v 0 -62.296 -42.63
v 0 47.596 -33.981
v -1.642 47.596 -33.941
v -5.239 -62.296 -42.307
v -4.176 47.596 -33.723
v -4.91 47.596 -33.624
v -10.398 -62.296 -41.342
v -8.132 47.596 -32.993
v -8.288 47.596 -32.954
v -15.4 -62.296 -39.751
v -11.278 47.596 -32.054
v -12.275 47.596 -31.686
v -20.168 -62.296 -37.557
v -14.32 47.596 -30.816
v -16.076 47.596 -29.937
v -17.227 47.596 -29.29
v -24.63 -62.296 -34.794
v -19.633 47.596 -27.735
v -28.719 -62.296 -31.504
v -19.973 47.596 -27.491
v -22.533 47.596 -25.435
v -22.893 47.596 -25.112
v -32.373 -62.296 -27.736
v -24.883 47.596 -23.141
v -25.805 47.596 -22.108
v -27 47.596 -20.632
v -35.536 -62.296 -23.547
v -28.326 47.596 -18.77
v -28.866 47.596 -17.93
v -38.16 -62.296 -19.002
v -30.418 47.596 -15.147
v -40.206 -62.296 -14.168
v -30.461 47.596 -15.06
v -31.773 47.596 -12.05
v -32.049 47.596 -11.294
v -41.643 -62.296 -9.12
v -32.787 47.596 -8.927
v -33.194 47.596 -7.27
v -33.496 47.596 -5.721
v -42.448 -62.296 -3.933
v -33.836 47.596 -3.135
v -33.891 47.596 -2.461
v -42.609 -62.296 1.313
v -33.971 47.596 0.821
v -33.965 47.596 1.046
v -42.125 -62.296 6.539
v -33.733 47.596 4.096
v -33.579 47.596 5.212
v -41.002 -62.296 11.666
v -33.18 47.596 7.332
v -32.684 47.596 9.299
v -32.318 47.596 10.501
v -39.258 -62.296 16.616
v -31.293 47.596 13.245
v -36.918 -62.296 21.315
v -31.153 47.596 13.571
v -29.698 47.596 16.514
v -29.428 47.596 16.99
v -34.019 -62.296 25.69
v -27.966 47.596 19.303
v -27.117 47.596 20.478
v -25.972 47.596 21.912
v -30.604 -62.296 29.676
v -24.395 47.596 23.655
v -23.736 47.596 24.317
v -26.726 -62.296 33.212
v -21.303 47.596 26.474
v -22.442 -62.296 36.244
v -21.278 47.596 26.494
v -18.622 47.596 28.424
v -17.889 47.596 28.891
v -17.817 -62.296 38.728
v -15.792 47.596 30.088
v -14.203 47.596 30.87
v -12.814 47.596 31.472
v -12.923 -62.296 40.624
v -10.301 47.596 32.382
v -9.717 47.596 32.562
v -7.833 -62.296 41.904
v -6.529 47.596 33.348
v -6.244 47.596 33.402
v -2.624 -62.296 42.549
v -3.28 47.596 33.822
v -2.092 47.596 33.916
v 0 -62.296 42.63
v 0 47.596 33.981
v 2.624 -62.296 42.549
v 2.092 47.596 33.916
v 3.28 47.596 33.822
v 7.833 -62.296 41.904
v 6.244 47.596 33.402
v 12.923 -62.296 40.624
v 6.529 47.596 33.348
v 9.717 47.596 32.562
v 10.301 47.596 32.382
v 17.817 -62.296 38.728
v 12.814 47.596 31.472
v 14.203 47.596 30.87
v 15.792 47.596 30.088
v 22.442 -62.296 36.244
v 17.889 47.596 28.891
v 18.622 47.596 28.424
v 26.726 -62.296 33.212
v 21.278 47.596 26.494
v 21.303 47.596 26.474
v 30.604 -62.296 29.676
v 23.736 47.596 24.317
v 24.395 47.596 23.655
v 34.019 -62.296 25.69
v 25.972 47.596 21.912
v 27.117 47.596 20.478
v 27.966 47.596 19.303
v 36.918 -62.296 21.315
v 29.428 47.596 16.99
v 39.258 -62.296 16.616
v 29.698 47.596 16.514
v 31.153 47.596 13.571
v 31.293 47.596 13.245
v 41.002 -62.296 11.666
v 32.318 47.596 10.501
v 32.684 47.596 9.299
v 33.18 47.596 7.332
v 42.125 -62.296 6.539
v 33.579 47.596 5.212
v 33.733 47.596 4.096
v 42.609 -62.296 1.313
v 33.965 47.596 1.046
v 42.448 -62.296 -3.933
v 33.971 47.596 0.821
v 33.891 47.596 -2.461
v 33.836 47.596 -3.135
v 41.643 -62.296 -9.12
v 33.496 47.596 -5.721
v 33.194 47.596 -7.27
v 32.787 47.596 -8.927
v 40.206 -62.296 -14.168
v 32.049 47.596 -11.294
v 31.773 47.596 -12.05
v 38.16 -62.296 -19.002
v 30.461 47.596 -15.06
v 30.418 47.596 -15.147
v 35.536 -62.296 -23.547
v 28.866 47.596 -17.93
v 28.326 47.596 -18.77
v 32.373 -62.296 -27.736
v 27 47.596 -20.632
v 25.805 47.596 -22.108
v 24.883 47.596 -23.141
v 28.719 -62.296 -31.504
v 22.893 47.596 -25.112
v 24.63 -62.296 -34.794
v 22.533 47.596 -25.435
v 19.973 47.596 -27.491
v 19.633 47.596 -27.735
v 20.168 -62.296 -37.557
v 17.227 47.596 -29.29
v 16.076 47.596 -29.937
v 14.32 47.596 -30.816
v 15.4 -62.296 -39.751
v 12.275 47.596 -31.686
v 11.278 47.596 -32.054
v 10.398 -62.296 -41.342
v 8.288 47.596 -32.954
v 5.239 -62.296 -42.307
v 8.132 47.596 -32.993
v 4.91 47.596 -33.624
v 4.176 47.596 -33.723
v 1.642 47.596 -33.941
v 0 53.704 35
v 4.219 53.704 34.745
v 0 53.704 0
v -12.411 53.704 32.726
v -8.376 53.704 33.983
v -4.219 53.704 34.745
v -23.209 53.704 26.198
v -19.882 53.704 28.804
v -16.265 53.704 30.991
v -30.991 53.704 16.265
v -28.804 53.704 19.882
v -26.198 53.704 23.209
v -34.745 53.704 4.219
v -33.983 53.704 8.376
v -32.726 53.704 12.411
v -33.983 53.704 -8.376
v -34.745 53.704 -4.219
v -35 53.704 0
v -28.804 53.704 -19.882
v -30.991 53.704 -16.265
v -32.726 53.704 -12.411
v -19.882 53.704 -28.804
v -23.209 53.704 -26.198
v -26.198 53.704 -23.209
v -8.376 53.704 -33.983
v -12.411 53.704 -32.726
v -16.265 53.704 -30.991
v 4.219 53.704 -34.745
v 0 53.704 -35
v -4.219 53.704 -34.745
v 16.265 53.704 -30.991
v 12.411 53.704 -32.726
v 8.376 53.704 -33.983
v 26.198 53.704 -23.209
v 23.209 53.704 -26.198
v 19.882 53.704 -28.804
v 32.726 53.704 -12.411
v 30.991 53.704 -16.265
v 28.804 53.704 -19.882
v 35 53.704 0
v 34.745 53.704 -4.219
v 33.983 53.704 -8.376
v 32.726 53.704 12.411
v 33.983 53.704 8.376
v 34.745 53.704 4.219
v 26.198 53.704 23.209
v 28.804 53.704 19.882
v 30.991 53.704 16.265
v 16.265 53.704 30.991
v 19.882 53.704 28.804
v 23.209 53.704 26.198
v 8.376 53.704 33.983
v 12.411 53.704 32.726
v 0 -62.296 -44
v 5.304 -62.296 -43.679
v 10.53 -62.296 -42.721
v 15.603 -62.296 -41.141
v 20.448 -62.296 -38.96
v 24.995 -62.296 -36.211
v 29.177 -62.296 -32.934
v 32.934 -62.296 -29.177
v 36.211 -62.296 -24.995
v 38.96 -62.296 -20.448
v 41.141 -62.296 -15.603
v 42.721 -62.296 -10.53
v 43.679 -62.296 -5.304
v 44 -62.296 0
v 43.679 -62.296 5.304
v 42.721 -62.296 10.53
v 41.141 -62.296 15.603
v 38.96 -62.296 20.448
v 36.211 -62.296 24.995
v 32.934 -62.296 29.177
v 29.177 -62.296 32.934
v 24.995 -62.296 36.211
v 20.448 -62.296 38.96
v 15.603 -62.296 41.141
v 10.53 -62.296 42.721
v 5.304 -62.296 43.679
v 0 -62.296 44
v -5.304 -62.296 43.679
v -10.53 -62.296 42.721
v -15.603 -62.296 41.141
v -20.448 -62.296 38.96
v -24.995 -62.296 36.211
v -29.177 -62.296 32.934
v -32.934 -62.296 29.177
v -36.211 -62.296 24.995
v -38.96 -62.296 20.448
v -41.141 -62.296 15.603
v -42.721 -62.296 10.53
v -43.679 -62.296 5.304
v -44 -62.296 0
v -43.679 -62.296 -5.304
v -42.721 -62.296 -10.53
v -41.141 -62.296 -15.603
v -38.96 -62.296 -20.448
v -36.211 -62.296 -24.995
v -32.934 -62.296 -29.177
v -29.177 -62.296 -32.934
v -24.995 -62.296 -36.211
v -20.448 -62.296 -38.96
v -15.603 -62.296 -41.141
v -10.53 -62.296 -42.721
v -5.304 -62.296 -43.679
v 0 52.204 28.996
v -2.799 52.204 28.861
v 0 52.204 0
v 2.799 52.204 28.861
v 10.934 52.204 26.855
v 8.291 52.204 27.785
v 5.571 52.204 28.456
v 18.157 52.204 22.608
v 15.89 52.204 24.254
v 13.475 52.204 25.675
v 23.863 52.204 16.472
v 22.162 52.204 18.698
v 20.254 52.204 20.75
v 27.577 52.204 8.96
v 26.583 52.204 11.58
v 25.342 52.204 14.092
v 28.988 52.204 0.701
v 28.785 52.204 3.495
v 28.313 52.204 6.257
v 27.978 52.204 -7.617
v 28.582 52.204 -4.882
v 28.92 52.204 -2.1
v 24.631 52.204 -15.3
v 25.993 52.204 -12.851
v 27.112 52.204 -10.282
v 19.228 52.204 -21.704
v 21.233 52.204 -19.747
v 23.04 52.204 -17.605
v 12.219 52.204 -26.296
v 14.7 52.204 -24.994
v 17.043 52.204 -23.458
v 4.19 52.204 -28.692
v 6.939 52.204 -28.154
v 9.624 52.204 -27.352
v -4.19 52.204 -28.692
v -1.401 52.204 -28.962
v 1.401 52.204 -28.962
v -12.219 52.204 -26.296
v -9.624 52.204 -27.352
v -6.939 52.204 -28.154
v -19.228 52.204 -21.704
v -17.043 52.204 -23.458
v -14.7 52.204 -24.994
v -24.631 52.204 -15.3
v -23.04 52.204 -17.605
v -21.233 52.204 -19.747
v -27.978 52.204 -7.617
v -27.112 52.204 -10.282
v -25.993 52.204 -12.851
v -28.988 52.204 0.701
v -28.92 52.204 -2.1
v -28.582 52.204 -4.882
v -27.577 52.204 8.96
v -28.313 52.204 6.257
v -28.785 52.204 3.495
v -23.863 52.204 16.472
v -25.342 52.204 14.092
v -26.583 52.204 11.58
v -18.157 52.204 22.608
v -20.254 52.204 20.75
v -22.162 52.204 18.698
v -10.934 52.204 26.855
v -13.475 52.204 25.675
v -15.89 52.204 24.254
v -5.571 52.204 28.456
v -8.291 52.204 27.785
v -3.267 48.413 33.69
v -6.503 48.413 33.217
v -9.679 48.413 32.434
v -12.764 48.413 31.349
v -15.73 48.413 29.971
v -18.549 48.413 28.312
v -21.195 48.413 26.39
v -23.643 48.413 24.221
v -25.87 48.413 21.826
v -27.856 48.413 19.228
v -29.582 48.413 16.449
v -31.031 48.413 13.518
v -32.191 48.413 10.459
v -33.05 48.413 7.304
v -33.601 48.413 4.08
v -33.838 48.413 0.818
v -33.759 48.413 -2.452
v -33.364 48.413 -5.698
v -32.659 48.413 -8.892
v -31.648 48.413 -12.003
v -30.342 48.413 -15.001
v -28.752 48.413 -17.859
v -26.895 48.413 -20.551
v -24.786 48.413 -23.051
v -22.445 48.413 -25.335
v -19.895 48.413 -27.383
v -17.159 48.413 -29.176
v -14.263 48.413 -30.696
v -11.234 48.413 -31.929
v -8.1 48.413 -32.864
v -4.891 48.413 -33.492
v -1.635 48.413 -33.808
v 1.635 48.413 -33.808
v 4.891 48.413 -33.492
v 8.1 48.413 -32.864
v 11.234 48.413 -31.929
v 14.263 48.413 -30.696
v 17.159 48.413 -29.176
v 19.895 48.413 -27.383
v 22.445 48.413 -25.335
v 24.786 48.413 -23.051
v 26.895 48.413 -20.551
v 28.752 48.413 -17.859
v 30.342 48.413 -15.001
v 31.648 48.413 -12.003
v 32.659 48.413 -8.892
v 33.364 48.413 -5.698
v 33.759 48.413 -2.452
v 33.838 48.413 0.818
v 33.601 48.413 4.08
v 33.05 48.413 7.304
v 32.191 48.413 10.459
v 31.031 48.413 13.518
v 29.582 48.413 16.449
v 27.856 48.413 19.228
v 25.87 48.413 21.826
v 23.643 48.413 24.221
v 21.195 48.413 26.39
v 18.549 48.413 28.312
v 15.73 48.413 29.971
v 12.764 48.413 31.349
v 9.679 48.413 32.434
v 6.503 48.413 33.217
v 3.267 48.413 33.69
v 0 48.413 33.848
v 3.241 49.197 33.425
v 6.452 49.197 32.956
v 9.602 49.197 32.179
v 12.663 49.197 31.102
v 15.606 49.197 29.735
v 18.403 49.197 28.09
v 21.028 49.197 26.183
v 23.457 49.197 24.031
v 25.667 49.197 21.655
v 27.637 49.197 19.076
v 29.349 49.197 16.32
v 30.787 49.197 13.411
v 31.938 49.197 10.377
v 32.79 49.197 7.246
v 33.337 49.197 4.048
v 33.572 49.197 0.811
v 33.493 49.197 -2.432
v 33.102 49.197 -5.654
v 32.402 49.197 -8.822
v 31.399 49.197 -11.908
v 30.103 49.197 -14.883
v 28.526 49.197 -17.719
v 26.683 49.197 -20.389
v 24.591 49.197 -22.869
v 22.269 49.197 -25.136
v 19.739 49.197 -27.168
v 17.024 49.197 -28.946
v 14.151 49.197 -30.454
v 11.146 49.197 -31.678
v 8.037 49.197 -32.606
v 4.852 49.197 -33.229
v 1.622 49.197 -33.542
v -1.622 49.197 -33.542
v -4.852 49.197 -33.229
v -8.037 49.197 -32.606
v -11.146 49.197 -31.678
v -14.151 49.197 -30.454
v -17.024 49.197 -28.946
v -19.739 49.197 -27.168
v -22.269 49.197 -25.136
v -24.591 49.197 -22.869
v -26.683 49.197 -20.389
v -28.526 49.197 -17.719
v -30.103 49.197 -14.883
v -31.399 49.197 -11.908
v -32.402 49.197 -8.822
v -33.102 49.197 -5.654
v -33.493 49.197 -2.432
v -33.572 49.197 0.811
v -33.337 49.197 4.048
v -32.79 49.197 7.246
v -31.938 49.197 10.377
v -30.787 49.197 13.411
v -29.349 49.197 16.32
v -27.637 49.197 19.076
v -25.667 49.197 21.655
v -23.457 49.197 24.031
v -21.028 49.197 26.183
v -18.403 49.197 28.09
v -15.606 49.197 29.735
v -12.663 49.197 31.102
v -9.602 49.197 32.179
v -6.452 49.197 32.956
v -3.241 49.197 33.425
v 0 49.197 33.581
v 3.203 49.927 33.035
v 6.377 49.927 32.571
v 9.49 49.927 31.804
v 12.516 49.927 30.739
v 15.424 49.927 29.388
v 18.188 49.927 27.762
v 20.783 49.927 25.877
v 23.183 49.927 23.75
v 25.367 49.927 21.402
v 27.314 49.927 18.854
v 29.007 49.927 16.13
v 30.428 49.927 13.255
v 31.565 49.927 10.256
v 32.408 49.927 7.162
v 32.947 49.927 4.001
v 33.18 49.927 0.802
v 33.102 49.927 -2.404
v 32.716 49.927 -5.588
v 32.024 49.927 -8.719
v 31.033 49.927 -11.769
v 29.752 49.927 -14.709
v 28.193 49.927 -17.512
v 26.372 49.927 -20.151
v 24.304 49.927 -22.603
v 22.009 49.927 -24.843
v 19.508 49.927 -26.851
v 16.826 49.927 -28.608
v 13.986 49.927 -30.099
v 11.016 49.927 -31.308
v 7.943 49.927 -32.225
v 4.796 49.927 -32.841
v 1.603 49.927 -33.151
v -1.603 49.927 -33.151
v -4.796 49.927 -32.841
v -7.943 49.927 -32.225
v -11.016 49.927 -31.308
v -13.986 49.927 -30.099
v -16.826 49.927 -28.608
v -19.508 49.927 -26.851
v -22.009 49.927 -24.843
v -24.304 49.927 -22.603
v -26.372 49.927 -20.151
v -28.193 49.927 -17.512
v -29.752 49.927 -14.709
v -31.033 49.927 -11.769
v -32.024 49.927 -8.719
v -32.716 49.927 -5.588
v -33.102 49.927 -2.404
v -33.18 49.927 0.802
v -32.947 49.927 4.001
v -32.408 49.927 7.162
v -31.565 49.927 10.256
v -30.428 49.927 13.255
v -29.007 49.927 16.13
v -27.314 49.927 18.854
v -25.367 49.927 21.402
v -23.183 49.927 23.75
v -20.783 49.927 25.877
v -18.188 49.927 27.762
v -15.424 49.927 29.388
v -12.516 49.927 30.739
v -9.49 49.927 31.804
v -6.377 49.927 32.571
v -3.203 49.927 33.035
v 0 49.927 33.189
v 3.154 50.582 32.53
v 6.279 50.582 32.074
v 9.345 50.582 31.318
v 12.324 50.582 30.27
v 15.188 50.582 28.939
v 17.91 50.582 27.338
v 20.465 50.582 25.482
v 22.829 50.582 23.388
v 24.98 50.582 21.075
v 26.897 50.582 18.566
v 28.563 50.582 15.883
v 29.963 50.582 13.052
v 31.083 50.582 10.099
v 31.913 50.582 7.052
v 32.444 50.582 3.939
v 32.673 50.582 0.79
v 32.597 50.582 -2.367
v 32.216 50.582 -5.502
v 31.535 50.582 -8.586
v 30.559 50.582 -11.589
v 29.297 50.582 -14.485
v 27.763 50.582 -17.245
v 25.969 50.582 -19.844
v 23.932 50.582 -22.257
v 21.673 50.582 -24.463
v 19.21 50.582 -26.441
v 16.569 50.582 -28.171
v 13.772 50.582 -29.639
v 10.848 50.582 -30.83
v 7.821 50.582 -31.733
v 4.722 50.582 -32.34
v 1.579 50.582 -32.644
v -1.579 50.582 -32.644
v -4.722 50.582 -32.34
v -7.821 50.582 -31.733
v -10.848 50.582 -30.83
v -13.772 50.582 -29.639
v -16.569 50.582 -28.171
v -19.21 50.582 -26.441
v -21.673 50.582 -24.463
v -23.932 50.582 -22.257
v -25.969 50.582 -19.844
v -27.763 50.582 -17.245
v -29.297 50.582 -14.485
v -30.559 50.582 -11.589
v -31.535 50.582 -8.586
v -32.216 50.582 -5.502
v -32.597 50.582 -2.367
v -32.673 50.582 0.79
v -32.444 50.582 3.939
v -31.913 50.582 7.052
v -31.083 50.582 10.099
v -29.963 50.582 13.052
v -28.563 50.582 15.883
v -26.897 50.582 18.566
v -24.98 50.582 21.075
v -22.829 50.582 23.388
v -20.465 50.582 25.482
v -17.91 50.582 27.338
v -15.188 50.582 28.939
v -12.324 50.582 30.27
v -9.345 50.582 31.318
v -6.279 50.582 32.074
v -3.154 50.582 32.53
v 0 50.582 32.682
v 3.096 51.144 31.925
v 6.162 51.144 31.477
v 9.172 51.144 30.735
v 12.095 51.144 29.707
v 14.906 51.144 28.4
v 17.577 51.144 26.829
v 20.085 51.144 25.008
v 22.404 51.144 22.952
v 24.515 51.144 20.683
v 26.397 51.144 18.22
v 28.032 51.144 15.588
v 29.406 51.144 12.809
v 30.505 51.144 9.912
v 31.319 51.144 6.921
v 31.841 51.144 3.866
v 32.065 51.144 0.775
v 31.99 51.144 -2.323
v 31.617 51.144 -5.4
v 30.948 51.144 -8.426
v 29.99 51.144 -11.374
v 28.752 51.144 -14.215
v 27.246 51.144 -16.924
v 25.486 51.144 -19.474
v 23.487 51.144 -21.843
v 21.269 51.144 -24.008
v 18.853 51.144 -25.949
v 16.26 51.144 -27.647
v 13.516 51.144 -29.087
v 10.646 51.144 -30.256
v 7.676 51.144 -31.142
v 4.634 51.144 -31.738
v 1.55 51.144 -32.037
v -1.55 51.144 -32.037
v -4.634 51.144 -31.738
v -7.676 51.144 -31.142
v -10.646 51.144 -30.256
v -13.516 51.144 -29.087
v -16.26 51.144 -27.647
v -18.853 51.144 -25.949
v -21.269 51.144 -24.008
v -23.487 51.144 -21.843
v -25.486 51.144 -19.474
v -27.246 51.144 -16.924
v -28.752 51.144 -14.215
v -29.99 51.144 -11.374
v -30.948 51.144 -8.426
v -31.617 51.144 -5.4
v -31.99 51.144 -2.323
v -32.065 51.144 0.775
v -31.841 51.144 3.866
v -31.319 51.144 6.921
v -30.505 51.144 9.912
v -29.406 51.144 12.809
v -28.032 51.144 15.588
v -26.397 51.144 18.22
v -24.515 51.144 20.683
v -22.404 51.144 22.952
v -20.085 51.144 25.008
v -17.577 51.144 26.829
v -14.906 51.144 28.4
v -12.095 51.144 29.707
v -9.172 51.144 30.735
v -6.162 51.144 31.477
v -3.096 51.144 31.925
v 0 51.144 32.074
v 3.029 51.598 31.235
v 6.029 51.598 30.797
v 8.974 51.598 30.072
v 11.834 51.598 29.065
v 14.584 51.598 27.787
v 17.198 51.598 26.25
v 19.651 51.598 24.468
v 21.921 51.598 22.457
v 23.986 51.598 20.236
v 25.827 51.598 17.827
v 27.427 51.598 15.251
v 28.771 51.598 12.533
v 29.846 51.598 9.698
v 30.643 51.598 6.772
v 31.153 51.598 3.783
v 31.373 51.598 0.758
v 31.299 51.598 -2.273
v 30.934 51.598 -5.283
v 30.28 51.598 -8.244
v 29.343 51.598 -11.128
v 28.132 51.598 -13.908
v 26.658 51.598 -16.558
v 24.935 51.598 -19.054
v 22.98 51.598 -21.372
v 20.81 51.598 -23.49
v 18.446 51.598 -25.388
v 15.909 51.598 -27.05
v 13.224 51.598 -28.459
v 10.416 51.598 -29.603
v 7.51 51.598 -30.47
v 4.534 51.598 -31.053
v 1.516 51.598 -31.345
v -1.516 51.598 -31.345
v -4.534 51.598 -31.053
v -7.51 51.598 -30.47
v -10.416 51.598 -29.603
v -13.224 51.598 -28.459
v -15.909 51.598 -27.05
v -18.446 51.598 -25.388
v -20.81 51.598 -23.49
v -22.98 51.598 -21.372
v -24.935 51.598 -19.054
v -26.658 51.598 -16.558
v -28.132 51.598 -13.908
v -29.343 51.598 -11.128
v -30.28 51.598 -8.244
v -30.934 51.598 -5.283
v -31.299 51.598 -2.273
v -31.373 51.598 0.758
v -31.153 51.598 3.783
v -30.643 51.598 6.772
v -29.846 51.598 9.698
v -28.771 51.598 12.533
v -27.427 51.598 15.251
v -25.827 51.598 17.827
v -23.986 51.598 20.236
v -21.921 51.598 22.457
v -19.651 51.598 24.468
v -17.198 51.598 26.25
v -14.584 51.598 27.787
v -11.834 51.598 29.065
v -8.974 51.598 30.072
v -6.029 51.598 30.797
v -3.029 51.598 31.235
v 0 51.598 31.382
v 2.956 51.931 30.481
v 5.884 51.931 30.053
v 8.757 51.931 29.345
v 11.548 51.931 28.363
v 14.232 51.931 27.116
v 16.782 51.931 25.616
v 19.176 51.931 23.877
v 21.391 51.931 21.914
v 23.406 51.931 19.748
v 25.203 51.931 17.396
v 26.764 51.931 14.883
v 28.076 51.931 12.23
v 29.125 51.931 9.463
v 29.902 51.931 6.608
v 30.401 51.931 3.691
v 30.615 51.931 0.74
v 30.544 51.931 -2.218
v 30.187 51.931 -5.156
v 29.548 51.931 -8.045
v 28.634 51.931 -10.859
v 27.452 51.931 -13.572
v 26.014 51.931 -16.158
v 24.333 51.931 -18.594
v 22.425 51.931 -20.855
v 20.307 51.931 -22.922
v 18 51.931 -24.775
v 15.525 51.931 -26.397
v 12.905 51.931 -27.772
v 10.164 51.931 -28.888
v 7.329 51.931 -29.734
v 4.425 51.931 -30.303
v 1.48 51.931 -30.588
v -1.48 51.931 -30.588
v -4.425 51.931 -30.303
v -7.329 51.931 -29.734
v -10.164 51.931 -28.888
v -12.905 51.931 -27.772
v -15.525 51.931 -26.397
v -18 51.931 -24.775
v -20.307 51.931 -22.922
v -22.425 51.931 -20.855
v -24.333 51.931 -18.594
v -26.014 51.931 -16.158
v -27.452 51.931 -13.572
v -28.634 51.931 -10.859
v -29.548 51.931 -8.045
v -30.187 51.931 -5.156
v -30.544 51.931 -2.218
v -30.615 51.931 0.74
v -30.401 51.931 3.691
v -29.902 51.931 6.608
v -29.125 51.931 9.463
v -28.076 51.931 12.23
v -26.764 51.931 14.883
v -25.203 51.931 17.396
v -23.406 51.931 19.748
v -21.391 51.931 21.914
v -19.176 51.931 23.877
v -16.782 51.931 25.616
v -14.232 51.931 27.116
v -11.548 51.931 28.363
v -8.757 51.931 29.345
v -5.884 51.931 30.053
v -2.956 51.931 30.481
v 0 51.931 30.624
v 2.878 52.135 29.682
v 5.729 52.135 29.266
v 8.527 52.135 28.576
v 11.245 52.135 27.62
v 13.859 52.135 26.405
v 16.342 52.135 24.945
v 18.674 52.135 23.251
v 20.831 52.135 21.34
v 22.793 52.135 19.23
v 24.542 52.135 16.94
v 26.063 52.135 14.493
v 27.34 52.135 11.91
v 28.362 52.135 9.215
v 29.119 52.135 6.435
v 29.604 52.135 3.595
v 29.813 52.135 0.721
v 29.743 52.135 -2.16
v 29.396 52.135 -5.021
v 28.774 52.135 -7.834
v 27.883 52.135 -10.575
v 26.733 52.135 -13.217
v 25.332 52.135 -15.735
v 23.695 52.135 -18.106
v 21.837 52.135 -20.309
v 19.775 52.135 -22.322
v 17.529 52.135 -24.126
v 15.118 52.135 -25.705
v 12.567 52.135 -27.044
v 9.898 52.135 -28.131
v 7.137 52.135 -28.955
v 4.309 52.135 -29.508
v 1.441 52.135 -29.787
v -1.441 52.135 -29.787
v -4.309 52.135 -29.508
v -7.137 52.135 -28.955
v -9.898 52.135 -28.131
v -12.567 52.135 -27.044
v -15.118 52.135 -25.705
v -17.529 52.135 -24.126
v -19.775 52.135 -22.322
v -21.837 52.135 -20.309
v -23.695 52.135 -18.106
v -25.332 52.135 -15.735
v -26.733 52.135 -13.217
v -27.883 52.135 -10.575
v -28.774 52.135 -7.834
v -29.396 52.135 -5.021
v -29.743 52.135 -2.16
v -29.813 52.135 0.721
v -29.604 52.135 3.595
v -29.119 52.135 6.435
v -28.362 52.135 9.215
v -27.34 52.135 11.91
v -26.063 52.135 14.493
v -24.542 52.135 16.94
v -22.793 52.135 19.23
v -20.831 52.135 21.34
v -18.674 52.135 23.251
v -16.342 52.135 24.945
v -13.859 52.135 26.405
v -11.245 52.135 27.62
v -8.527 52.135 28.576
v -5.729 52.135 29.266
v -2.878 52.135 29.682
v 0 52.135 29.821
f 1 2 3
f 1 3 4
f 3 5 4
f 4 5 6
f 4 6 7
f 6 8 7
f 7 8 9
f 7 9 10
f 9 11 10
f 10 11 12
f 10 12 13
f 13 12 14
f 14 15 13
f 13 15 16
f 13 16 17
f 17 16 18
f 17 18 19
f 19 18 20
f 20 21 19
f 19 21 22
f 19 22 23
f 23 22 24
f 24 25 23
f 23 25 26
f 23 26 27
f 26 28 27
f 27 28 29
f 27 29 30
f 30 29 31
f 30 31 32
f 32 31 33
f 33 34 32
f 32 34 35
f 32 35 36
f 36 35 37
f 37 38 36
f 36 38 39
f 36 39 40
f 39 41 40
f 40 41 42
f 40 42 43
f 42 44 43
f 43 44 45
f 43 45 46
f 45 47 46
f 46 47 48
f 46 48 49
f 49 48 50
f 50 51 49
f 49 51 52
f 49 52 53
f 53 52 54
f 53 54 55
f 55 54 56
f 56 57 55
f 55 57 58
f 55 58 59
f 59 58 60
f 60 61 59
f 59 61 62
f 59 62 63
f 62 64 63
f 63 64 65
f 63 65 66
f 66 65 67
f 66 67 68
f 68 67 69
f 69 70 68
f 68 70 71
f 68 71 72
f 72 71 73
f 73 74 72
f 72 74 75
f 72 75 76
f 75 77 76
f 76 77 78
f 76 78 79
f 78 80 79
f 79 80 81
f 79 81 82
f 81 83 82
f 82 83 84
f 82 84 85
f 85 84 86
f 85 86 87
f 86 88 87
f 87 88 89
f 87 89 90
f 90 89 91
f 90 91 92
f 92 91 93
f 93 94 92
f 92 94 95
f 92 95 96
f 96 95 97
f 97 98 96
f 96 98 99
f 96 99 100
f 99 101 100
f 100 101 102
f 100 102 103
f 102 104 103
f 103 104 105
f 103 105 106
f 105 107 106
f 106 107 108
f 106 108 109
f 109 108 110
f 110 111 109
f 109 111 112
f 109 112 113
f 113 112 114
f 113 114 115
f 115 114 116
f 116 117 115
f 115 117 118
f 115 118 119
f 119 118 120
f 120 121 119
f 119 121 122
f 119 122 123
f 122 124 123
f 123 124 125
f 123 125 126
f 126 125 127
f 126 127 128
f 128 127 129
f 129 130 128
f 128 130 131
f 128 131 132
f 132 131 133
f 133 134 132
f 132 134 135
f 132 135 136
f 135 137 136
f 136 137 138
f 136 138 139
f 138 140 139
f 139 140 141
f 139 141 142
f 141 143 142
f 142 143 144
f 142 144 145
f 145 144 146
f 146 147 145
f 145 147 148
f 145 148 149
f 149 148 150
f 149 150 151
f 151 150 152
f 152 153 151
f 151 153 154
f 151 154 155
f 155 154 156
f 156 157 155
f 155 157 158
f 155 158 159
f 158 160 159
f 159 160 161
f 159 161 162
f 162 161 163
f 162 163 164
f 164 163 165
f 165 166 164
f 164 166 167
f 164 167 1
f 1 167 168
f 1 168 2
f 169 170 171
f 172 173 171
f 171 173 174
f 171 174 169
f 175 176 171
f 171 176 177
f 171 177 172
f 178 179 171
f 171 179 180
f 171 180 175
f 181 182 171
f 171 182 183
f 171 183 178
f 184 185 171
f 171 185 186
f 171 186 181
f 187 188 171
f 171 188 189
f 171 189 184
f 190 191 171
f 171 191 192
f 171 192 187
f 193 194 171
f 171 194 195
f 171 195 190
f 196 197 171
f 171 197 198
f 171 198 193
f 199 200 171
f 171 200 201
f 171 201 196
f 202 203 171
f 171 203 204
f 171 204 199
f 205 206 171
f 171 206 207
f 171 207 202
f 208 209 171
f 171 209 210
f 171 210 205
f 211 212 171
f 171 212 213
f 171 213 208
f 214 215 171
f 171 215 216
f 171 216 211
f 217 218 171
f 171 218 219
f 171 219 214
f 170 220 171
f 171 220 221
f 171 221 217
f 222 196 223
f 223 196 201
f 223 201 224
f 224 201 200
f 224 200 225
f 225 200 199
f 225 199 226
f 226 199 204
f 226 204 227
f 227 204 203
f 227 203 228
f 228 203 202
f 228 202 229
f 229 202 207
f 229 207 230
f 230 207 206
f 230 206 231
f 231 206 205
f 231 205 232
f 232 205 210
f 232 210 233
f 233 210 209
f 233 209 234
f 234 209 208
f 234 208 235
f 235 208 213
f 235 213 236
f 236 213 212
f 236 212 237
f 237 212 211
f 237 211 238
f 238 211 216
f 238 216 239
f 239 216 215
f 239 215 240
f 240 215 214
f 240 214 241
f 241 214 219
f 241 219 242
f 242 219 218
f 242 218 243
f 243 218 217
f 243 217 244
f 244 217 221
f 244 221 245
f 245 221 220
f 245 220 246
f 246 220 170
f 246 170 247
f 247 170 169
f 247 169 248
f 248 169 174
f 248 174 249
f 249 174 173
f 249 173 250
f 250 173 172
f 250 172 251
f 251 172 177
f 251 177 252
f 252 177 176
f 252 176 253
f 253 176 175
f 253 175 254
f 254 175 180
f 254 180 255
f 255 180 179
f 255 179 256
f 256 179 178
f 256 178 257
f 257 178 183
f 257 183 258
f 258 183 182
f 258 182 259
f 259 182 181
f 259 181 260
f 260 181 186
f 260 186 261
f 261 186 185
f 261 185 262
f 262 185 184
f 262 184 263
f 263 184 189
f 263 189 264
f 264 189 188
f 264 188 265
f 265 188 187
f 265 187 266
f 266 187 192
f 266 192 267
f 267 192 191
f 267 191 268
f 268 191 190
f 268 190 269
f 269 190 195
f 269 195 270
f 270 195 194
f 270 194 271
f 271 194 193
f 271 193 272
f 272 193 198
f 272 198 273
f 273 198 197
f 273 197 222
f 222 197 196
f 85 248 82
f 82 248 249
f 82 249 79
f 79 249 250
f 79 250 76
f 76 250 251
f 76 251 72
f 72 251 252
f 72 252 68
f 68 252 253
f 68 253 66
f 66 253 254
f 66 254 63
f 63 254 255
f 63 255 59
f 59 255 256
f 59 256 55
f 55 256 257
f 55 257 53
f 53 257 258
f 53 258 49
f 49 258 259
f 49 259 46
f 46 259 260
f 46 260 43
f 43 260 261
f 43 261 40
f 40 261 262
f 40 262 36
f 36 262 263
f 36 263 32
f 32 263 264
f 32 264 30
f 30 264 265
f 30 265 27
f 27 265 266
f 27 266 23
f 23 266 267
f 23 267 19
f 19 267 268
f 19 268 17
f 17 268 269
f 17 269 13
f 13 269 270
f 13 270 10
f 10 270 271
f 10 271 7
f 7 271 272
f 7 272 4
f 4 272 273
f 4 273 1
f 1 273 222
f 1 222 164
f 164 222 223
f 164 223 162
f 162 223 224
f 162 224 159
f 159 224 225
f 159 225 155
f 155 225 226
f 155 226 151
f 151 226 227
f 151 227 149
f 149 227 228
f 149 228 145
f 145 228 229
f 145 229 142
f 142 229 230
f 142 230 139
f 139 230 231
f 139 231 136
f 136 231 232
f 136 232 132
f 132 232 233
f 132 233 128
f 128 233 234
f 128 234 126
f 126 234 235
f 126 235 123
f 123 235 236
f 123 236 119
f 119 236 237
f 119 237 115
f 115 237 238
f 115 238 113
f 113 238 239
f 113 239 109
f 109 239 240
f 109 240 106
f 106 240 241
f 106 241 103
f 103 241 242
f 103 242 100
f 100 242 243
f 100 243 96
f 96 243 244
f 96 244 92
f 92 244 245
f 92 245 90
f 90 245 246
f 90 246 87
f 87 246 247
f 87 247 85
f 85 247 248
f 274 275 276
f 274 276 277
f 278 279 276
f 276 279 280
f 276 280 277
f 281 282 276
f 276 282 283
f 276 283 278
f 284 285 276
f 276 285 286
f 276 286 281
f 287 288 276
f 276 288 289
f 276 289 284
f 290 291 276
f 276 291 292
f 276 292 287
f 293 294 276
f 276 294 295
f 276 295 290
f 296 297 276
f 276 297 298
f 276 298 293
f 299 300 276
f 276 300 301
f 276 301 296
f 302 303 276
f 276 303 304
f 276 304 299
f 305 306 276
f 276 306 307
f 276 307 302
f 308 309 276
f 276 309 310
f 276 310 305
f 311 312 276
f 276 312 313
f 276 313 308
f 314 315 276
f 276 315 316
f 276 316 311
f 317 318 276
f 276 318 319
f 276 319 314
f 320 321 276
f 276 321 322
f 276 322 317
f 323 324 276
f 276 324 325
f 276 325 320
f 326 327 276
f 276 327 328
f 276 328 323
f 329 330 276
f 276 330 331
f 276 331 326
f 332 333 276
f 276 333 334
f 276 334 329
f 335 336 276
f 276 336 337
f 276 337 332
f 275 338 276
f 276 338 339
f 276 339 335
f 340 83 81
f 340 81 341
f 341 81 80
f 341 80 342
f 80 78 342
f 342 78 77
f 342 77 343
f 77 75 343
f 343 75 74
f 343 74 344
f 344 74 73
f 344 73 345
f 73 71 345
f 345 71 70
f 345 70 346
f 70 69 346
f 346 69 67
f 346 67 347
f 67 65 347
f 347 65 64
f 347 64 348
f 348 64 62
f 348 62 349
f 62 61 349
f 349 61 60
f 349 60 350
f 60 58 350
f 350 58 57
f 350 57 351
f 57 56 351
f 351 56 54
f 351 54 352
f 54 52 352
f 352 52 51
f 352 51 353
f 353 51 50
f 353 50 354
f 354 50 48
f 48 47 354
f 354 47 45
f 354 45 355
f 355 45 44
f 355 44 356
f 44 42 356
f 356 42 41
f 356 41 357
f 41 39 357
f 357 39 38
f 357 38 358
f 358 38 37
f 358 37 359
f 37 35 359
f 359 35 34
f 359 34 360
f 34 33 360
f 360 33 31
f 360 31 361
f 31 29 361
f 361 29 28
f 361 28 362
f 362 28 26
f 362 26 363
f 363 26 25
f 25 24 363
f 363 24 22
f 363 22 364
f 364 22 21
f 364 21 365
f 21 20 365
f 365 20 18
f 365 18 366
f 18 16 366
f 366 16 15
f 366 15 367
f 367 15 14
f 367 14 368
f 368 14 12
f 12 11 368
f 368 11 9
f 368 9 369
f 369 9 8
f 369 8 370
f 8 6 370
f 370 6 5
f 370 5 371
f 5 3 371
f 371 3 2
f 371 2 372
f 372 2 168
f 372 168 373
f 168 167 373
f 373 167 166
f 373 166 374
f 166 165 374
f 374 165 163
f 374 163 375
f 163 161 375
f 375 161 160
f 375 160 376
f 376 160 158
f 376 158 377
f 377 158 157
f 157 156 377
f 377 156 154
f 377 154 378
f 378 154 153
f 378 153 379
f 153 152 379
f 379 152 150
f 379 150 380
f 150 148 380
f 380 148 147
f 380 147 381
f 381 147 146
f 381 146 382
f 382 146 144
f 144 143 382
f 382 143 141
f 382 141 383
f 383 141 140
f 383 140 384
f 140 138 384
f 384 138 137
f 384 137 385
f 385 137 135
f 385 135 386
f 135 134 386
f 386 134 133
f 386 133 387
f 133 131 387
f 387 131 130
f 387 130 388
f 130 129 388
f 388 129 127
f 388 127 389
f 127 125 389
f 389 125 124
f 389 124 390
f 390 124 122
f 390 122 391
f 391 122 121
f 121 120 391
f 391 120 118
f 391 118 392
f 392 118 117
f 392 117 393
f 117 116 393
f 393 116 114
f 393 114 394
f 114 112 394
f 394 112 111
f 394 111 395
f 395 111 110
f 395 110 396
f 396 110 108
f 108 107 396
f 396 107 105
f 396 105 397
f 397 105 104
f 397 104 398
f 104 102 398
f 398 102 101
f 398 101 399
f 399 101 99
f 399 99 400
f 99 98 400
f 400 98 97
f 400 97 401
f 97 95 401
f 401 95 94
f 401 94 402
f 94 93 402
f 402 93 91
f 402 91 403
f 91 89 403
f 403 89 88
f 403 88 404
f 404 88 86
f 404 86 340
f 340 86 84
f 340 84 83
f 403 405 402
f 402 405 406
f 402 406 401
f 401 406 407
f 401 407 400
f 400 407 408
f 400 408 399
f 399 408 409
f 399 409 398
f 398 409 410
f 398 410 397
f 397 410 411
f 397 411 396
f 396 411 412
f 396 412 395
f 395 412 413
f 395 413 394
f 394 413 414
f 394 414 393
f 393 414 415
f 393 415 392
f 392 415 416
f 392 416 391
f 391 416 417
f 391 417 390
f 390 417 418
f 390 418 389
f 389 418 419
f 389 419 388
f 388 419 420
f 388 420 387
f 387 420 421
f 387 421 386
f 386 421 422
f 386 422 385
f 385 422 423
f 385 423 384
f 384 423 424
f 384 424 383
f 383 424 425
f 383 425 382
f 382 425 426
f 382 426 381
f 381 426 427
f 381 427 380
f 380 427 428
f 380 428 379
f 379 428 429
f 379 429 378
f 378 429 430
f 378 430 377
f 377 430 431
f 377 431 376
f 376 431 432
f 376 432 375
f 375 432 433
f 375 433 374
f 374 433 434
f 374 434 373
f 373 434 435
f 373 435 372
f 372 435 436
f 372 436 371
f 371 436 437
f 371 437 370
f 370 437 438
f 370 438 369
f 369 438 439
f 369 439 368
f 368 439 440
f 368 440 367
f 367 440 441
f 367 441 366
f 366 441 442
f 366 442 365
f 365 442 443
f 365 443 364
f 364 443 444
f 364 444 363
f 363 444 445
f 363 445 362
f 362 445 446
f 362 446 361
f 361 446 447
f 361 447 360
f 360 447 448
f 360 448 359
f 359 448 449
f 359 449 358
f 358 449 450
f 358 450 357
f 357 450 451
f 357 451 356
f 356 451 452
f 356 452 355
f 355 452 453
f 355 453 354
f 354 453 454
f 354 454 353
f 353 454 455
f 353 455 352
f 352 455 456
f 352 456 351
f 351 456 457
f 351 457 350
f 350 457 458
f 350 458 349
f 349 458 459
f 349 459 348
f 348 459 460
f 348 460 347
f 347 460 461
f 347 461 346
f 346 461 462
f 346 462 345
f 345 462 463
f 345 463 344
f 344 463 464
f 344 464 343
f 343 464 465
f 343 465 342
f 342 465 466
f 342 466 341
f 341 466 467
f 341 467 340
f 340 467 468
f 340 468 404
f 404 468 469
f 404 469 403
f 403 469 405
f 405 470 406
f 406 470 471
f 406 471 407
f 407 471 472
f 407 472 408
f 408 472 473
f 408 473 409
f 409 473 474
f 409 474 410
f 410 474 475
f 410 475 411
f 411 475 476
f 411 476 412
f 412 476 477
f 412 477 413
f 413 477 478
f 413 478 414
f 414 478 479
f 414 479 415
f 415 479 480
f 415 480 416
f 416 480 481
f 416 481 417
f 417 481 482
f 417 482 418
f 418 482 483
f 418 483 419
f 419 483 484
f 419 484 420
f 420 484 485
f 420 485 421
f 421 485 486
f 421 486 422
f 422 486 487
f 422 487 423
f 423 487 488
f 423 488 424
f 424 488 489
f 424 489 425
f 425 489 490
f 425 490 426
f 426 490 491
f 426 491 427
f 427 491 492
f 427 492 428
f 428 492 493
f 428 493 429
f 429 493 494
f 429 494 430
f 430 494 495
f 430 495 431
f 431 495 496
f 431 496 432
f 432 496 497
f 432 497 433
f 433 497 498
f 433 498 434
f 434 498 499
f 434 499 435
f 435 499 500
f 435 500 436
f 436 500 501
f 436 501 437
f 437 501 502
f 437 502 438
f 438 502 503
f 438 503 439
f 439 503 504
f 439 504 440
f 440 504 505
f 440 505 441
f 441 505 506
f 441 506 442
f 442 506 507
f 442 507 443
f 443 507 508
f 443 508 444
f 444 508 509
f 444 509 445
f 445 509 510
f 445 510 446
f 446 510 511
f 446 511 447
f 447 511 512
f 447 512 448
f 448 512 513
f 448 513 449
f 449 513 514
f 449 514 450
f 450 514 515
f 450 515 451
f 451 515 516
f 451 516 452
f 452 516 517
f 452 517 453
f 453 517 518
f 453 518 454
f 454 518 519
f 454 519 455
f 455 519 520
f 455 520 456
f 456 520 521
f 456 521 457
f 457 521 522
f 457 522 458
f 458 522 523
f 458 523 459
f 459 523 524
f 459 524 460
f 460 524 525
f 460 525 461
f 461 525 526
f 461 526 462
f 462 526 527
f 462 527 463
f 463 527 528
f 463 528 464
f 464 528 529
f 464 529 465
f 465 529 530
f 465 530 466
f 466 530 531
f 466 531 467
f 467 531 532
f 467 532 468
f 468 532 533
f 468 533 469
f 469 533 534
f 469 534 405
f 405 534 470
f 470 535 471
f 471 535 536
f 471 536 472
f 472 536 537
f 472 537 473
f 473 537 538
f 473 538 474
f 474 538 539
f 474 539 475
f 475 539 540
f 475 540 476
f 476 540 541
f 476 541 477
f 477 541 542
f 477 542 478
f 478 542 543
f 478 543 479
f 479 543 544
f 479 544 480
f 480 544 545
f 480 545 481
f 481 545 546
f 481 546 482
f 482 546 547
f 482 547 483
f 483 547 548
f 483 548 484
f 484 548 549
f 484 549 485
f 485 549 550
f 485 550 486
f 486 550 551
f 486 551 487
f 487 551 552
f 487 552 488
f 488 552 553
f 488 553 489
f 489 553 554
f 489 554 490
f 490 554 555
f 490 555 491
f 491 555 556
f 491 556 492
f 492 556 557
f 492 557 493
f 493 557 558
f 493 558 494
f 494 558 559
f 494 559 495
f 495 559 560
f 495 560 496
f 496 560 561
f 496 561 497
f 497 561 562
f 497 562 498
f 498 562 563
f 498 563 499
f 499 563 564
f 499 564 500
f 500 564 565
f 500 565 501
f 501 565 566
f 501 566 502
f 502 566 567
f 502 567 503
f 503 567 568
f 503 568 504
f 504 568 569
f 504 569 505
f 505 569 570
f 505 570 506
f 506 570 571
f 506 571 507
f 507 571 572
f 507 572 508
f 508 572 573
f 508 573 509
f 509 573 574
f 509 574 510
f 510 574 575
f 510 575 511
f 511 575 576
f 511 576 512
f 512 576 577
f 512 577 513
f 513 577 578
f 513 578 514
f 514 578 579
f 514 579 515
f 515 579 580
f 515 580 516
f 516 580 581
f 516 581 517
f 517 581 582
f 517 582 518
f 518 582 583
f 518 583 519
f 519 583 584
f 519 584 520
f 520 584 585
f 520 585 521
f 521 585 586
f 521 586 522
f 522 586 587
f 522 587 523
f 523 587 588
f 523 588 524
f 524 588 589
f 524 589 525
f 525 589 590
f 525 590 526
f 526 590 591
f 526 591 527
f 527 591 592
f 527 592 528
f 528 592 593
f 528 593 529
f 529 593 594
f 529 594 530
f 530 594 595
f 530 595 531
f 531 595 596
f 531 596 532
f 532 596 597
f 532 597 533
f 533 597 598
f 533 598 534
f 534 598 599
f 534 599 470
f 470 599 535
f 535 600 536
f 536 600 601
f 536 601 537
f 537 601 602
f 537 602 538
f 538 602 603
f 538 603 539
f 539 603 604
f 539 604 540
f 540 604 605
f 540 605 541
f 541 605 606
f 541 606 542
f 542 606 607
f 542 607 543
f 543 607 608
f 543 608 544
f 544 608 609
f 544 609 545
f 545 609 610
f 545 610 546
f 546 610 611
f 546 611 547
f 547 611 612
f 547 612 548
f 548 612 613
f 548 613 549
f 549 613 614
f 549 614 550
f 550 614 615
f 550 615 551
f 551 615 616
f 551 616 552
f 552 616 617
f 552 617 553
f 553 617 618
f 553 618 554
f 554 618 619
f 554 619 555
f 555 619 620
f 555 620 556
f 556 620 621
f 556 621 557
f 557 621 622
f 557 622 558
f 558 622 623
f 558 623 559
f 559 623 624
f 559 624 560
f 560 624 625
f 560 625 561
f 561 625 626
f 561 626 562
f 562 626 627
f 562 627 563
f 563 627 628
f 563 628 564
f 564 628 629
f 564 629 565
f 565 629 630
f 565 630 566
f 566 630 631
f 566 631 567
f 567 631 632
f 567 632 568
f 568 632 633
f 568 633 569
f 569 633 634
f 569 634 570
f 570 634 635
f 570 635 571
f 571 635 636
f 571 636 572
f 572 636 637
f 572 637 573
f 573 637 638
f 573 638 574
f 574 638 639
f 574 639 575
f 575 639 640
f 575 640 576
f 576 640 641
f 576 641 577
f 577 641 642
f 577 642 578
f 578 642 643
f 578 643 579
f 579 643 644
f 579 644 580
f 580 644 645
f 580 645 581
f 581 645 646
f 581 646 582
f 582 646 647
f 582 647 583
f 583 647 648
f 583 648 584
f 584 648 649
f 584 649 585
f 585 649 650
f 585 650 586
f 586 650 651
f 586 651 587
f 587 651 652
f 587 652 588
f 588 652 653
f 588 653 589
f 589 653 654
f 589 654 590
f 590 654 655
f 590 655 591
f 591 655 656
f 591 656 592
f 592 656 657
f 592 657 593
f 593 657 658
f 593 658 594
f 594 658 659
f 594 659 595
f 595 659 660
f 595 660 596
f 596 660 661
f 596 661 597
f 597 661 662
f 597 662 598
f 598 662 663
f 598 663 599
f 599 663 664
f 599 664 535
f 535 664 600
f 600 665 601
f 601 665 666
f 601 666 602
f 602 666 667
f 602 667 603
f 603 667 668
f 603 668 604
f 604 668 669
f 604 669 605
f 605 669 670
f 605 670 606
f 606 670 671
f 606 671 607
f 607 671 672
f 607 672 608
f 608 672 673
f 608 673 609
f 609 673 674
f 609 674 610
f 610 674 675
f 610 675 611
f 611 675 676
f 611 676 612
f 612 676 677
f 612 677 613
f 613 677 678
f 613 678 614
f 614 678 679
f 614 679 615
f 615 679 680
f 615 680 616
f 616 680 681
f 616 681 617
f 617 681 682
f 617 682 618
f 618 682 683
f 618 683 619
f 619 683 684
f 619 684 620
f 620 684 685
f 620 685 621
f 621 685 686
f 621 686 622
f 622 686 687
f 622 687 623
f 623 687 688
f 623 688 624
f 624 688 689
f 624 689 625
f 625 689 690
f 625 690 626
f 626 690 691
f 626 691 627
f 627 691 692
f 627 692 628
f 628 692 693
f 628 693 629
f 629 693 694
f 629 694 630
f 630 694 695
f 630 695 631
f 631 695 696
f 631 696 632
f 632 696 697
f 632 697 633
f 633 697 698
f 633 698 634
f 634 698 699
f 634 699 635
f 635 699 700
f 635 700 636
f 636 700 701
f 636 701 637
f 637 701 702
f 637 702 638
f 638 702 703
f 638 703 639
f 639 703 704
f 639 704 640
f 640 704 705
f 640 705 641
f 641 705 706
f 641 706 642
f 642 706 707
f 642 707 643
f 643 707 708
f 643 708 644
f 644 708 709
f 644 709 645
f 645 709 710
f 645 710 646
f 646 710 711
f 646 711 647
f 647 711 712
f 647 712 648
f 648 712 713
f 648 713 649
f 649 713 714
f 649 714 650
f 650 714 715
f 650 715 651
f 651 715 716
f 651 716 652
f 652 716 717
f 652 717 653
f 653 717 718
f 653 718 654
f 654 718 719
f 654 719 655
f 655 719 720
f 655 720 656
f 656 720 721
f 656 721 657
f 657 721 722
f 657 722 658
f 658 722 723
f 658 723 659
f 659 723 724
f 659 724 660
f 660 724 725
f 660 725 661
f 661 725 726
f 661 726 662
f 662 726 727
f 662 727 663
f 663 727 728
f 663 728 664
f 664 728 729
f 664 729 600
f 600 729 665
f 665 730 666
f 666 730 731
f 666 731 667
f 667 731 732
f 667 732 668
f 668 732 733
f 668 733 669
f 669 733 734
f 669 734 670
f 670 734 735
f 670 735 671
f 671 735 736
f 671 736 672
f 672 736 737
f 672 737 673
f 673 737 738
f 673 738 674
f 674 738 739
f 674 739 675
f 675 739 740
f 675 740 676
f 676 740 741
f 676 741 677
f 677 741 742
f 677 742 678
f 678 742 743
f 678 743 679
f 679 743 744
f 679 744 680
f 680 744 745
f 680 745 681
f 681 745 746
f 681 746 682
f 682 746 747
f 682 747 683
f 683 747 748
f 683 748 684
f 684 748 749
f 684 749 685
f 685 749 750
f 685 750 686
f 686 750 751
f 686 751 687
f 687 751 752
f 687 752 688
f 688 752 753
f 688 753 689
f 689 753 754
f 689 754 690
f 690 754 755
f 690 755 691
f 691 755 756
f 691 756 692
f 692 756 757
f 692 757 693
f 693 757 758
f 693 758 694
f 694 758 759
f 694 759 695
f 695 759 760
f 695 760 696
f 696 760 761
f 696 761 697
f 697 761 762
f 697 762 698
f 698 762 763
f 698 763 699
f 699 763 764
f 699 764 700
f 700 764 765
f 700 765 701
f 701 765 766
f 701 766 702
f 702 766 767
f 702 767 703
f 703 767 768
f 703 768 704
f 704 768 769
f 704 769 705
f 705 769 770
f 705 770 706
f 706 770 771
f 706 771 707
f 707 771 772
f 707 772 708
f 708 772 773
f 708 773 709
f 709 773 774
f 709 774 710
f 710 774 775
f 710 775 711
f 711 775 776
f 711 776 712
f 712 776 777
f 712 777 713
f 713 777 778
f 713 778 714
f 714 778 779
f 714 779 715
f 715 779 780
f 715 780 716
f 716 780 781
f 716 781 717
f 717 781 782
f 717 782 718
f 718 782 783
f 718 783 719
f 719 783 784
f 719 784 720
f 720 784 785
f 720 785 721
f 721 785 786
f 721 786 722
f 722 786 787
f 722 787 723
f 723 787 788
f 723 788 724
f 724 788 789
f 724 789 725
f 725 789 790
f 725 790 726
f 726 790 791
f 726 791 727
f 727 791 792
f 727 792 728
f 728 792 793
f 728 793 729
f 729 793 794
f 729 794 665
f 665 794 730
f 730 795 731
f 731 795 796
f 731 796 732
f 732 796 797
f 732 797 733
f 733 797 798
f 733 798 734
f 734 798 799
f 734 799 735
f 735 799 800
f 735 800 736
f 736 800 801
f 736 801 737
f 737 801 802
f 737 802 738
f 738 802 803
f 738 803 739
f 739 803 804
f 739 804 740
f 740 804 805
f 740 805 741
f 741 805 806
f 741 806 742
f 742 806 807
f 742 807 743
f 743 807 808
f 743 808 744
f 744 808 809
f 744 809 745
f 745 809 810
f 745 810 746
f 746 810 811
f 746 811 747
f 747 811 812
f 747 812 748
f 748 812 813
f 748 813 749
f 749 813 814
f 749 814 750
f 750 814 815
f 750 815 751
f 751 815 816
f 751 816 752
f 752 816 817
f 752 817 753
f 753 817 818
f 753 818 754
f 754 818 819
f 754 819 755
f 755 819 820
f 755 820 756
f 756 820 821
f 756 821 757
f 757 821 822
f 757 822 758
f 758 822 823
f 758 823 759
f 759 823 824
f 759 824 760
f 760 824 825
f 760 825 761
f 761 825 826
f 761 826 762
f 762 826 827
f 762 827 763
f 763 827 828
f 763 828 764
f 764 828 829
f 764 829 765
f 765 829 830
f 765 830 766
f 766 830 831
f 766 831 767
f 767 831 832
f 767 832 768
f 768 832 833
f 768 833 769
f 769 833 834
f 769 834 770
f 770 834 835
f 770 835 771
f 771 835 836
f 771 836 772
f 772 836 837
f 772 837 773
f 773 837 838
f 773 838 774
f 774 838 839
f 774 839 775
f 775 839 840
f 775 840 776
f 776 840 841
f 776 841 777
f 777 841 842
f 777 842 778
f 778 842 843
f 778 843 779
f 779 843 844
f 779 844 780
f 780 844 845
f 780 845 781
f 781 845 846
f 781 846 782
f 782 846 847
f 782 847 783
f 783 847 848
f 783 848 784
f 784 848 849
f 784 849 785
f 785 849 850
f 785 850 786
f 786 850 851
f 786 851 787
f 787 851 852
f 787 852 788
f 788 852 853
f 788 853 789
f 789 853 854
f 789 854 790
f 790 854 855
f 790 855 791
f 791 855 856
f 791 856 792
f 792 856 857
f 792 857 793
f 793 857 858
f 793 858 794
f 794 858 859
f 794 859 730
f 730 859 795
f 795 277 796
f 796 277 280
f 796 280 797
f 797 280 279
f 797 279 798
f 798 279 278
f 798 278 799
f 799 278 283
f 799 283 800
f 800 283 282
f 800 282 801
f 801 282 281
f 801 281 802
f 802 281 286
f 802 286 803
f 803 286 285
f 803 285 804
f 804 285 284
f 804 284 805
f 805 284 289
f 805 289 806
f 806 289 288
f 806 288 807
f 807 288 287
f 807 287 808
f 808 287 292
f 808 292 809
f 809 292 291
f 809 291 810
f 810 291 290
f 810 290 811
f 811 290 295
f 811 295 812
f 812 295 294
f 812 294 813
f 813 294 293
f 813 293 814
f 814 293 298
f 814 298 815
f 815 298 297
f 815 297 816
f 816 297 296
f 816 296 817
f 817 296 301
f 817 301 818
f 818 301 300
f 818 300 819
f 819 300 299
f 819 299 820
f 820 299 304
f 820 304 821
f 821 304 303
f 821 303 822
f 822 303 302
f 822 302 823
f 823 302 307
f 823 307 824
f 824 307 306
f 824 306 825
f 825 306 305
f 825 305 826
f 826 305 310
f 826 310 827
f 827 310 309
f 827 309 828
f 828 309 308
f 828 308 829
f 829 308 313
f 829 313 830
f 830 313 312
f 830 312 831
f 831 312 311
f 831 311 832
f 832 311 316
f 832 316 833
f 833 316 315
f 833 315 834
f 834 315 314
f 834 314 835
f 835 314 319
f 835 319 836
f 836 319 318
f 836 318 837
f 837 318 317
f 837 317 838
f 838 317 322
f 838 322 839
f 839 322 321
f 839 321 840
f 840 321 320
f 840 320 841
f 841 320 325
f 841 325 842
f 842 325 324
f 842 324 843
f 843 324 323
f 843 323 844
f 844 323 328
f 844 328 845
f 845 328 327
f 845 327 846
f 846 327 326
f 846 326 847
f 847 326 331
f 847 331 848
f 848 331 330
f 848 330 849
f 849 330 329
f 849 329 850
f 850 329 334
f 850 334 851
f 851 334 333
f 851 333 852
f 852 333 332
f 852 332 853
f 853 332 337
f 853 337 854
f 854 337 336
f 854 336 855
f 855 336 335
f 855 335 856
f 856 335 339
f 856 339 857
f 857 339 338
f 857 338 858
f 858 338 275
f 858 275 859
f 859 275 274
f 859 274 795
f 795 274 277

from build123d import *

# Parameters (mm, degrees)
SKETCH2_R           = 35
BOSS_EXTRUDE1_DEPTH = 1.5
FILLET1_R           = 5


with BuildPart() as part:
    # Sketch1 → Revolve1 (revolve)
    with BuildSketch(Plane.XY):
        Polygon((35, 53.703703704), (44, -62.296296296), (42.62962963, -62.296296296), (33.5, 53.703703704), align=None)
    revolve(axis=Axis((0, 53.703703704, 0), (0, -1, 0)))

    # Sketch2 → Boss-Extrude1 (add)
    with BuildSketch(Plane(origin=(0, 53.703703704, 0), x_dir=(1, 0, 0), z_dir=(0, 1, 0))):
        Circle(SKETCH2_R)
    extrude(amount=-BOSS_EXTRUDE1_DEPTH)

    # Fillet1
    fillet1_edges = [part.edges().sort_by_distance(p)[0] for p in [
        (-33.618055556, 52.203703704, 0),
    ]]
    fillet(fillet1_edges, radius=FILLET1_R)


solid = part.part
